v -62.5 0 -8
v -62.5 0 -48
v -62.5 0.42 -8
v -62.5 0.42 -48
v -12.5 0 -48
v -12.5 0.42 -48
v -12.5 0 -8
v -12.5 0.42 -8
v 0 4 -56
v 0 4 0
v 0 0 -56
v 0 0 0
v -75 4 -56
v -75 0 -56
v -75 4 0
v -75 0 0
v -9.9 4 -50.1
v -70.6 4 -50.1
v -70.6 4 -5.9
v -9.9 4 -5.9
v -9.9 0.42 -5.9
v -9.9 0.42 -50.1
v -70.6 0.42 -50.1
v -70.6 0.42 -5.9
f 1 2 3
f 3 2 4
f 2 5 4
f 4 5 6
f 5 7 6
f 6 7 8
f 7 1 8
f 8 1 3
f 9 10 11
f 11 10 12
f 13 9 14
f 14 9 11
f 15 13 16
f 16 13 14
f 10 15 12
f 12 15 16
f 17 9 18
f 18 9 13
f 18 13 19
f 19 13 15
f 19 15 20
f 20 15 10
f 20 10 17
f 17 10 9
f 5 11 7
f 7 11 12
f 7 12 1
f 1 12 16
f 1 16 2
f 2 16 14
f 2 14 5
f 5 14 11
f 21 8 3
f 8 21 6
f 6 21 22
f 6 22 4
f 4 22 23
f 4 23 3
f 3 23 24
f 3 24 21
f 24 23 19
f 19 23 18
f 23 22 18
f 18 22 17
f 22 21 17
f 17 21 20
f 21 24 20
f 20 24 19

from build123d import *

# Parameters (mm, degrees)
ESBO_O4_W                = 75
ESBO_O4_H                = 56
RESSALTO_EXTRUS_O1_DEPTH = 4
ESBO_O5_W                = 50
ESBO_O5_H                = 40
CORTE_EXTRUS_O1_DEPTH    = 94.685644578
ESBO_O6_W                = 60.7
ESBO_O6_H                = 44.2
CORTE_EXTRUS_O2_DEPTH    = 3.58


with BuildPart() as part:
    # Esboço4 → Ressalto-extrusão1 (new body)
    with BuildSketch(Plane(origin=(0, 0, 0), x_dir=(1, 0, 0), z_dir=(0, 1, 0))):
        with Locations((-37.5, 28)):
            Rectangle(ESBO_O4_W, ESBO_O4_H)
    extrude(amount=RESSALTO_EXTRUS_O1_DEPTH)

    # Esboço5 → Corte-extrusão1 (cut, through all)
    with BuildSketch(Plane(origin=(0, 4, 0), x_dir=(1, 0, 0), z_dir=(0, 1, 0))):
        with Locations((-37.5, 28)):
            Rectangle(ESBO_O5_W, ESBO_O5_H)
    extrude(amount=-CORTE_EXTRUS_O1_DEPTH, mode=Mode.SUBTRACT)

    # Esboço6 → Corte-extrusão2 (cut)
    with BuildSketch(Plane(origin=(0, 4, 0), x_dir=(1, 0, 0), z_dir=(0, 1, 0))):
        with Locations((-40.25, 28)):
            Rectangle(ESBO_O6_W, ESBO_O6_H)
    extrude(amount=-CORTE_EXTRUS_O2_DEPTH, mode=Mode.SUBTRACT)


solid = part.part
